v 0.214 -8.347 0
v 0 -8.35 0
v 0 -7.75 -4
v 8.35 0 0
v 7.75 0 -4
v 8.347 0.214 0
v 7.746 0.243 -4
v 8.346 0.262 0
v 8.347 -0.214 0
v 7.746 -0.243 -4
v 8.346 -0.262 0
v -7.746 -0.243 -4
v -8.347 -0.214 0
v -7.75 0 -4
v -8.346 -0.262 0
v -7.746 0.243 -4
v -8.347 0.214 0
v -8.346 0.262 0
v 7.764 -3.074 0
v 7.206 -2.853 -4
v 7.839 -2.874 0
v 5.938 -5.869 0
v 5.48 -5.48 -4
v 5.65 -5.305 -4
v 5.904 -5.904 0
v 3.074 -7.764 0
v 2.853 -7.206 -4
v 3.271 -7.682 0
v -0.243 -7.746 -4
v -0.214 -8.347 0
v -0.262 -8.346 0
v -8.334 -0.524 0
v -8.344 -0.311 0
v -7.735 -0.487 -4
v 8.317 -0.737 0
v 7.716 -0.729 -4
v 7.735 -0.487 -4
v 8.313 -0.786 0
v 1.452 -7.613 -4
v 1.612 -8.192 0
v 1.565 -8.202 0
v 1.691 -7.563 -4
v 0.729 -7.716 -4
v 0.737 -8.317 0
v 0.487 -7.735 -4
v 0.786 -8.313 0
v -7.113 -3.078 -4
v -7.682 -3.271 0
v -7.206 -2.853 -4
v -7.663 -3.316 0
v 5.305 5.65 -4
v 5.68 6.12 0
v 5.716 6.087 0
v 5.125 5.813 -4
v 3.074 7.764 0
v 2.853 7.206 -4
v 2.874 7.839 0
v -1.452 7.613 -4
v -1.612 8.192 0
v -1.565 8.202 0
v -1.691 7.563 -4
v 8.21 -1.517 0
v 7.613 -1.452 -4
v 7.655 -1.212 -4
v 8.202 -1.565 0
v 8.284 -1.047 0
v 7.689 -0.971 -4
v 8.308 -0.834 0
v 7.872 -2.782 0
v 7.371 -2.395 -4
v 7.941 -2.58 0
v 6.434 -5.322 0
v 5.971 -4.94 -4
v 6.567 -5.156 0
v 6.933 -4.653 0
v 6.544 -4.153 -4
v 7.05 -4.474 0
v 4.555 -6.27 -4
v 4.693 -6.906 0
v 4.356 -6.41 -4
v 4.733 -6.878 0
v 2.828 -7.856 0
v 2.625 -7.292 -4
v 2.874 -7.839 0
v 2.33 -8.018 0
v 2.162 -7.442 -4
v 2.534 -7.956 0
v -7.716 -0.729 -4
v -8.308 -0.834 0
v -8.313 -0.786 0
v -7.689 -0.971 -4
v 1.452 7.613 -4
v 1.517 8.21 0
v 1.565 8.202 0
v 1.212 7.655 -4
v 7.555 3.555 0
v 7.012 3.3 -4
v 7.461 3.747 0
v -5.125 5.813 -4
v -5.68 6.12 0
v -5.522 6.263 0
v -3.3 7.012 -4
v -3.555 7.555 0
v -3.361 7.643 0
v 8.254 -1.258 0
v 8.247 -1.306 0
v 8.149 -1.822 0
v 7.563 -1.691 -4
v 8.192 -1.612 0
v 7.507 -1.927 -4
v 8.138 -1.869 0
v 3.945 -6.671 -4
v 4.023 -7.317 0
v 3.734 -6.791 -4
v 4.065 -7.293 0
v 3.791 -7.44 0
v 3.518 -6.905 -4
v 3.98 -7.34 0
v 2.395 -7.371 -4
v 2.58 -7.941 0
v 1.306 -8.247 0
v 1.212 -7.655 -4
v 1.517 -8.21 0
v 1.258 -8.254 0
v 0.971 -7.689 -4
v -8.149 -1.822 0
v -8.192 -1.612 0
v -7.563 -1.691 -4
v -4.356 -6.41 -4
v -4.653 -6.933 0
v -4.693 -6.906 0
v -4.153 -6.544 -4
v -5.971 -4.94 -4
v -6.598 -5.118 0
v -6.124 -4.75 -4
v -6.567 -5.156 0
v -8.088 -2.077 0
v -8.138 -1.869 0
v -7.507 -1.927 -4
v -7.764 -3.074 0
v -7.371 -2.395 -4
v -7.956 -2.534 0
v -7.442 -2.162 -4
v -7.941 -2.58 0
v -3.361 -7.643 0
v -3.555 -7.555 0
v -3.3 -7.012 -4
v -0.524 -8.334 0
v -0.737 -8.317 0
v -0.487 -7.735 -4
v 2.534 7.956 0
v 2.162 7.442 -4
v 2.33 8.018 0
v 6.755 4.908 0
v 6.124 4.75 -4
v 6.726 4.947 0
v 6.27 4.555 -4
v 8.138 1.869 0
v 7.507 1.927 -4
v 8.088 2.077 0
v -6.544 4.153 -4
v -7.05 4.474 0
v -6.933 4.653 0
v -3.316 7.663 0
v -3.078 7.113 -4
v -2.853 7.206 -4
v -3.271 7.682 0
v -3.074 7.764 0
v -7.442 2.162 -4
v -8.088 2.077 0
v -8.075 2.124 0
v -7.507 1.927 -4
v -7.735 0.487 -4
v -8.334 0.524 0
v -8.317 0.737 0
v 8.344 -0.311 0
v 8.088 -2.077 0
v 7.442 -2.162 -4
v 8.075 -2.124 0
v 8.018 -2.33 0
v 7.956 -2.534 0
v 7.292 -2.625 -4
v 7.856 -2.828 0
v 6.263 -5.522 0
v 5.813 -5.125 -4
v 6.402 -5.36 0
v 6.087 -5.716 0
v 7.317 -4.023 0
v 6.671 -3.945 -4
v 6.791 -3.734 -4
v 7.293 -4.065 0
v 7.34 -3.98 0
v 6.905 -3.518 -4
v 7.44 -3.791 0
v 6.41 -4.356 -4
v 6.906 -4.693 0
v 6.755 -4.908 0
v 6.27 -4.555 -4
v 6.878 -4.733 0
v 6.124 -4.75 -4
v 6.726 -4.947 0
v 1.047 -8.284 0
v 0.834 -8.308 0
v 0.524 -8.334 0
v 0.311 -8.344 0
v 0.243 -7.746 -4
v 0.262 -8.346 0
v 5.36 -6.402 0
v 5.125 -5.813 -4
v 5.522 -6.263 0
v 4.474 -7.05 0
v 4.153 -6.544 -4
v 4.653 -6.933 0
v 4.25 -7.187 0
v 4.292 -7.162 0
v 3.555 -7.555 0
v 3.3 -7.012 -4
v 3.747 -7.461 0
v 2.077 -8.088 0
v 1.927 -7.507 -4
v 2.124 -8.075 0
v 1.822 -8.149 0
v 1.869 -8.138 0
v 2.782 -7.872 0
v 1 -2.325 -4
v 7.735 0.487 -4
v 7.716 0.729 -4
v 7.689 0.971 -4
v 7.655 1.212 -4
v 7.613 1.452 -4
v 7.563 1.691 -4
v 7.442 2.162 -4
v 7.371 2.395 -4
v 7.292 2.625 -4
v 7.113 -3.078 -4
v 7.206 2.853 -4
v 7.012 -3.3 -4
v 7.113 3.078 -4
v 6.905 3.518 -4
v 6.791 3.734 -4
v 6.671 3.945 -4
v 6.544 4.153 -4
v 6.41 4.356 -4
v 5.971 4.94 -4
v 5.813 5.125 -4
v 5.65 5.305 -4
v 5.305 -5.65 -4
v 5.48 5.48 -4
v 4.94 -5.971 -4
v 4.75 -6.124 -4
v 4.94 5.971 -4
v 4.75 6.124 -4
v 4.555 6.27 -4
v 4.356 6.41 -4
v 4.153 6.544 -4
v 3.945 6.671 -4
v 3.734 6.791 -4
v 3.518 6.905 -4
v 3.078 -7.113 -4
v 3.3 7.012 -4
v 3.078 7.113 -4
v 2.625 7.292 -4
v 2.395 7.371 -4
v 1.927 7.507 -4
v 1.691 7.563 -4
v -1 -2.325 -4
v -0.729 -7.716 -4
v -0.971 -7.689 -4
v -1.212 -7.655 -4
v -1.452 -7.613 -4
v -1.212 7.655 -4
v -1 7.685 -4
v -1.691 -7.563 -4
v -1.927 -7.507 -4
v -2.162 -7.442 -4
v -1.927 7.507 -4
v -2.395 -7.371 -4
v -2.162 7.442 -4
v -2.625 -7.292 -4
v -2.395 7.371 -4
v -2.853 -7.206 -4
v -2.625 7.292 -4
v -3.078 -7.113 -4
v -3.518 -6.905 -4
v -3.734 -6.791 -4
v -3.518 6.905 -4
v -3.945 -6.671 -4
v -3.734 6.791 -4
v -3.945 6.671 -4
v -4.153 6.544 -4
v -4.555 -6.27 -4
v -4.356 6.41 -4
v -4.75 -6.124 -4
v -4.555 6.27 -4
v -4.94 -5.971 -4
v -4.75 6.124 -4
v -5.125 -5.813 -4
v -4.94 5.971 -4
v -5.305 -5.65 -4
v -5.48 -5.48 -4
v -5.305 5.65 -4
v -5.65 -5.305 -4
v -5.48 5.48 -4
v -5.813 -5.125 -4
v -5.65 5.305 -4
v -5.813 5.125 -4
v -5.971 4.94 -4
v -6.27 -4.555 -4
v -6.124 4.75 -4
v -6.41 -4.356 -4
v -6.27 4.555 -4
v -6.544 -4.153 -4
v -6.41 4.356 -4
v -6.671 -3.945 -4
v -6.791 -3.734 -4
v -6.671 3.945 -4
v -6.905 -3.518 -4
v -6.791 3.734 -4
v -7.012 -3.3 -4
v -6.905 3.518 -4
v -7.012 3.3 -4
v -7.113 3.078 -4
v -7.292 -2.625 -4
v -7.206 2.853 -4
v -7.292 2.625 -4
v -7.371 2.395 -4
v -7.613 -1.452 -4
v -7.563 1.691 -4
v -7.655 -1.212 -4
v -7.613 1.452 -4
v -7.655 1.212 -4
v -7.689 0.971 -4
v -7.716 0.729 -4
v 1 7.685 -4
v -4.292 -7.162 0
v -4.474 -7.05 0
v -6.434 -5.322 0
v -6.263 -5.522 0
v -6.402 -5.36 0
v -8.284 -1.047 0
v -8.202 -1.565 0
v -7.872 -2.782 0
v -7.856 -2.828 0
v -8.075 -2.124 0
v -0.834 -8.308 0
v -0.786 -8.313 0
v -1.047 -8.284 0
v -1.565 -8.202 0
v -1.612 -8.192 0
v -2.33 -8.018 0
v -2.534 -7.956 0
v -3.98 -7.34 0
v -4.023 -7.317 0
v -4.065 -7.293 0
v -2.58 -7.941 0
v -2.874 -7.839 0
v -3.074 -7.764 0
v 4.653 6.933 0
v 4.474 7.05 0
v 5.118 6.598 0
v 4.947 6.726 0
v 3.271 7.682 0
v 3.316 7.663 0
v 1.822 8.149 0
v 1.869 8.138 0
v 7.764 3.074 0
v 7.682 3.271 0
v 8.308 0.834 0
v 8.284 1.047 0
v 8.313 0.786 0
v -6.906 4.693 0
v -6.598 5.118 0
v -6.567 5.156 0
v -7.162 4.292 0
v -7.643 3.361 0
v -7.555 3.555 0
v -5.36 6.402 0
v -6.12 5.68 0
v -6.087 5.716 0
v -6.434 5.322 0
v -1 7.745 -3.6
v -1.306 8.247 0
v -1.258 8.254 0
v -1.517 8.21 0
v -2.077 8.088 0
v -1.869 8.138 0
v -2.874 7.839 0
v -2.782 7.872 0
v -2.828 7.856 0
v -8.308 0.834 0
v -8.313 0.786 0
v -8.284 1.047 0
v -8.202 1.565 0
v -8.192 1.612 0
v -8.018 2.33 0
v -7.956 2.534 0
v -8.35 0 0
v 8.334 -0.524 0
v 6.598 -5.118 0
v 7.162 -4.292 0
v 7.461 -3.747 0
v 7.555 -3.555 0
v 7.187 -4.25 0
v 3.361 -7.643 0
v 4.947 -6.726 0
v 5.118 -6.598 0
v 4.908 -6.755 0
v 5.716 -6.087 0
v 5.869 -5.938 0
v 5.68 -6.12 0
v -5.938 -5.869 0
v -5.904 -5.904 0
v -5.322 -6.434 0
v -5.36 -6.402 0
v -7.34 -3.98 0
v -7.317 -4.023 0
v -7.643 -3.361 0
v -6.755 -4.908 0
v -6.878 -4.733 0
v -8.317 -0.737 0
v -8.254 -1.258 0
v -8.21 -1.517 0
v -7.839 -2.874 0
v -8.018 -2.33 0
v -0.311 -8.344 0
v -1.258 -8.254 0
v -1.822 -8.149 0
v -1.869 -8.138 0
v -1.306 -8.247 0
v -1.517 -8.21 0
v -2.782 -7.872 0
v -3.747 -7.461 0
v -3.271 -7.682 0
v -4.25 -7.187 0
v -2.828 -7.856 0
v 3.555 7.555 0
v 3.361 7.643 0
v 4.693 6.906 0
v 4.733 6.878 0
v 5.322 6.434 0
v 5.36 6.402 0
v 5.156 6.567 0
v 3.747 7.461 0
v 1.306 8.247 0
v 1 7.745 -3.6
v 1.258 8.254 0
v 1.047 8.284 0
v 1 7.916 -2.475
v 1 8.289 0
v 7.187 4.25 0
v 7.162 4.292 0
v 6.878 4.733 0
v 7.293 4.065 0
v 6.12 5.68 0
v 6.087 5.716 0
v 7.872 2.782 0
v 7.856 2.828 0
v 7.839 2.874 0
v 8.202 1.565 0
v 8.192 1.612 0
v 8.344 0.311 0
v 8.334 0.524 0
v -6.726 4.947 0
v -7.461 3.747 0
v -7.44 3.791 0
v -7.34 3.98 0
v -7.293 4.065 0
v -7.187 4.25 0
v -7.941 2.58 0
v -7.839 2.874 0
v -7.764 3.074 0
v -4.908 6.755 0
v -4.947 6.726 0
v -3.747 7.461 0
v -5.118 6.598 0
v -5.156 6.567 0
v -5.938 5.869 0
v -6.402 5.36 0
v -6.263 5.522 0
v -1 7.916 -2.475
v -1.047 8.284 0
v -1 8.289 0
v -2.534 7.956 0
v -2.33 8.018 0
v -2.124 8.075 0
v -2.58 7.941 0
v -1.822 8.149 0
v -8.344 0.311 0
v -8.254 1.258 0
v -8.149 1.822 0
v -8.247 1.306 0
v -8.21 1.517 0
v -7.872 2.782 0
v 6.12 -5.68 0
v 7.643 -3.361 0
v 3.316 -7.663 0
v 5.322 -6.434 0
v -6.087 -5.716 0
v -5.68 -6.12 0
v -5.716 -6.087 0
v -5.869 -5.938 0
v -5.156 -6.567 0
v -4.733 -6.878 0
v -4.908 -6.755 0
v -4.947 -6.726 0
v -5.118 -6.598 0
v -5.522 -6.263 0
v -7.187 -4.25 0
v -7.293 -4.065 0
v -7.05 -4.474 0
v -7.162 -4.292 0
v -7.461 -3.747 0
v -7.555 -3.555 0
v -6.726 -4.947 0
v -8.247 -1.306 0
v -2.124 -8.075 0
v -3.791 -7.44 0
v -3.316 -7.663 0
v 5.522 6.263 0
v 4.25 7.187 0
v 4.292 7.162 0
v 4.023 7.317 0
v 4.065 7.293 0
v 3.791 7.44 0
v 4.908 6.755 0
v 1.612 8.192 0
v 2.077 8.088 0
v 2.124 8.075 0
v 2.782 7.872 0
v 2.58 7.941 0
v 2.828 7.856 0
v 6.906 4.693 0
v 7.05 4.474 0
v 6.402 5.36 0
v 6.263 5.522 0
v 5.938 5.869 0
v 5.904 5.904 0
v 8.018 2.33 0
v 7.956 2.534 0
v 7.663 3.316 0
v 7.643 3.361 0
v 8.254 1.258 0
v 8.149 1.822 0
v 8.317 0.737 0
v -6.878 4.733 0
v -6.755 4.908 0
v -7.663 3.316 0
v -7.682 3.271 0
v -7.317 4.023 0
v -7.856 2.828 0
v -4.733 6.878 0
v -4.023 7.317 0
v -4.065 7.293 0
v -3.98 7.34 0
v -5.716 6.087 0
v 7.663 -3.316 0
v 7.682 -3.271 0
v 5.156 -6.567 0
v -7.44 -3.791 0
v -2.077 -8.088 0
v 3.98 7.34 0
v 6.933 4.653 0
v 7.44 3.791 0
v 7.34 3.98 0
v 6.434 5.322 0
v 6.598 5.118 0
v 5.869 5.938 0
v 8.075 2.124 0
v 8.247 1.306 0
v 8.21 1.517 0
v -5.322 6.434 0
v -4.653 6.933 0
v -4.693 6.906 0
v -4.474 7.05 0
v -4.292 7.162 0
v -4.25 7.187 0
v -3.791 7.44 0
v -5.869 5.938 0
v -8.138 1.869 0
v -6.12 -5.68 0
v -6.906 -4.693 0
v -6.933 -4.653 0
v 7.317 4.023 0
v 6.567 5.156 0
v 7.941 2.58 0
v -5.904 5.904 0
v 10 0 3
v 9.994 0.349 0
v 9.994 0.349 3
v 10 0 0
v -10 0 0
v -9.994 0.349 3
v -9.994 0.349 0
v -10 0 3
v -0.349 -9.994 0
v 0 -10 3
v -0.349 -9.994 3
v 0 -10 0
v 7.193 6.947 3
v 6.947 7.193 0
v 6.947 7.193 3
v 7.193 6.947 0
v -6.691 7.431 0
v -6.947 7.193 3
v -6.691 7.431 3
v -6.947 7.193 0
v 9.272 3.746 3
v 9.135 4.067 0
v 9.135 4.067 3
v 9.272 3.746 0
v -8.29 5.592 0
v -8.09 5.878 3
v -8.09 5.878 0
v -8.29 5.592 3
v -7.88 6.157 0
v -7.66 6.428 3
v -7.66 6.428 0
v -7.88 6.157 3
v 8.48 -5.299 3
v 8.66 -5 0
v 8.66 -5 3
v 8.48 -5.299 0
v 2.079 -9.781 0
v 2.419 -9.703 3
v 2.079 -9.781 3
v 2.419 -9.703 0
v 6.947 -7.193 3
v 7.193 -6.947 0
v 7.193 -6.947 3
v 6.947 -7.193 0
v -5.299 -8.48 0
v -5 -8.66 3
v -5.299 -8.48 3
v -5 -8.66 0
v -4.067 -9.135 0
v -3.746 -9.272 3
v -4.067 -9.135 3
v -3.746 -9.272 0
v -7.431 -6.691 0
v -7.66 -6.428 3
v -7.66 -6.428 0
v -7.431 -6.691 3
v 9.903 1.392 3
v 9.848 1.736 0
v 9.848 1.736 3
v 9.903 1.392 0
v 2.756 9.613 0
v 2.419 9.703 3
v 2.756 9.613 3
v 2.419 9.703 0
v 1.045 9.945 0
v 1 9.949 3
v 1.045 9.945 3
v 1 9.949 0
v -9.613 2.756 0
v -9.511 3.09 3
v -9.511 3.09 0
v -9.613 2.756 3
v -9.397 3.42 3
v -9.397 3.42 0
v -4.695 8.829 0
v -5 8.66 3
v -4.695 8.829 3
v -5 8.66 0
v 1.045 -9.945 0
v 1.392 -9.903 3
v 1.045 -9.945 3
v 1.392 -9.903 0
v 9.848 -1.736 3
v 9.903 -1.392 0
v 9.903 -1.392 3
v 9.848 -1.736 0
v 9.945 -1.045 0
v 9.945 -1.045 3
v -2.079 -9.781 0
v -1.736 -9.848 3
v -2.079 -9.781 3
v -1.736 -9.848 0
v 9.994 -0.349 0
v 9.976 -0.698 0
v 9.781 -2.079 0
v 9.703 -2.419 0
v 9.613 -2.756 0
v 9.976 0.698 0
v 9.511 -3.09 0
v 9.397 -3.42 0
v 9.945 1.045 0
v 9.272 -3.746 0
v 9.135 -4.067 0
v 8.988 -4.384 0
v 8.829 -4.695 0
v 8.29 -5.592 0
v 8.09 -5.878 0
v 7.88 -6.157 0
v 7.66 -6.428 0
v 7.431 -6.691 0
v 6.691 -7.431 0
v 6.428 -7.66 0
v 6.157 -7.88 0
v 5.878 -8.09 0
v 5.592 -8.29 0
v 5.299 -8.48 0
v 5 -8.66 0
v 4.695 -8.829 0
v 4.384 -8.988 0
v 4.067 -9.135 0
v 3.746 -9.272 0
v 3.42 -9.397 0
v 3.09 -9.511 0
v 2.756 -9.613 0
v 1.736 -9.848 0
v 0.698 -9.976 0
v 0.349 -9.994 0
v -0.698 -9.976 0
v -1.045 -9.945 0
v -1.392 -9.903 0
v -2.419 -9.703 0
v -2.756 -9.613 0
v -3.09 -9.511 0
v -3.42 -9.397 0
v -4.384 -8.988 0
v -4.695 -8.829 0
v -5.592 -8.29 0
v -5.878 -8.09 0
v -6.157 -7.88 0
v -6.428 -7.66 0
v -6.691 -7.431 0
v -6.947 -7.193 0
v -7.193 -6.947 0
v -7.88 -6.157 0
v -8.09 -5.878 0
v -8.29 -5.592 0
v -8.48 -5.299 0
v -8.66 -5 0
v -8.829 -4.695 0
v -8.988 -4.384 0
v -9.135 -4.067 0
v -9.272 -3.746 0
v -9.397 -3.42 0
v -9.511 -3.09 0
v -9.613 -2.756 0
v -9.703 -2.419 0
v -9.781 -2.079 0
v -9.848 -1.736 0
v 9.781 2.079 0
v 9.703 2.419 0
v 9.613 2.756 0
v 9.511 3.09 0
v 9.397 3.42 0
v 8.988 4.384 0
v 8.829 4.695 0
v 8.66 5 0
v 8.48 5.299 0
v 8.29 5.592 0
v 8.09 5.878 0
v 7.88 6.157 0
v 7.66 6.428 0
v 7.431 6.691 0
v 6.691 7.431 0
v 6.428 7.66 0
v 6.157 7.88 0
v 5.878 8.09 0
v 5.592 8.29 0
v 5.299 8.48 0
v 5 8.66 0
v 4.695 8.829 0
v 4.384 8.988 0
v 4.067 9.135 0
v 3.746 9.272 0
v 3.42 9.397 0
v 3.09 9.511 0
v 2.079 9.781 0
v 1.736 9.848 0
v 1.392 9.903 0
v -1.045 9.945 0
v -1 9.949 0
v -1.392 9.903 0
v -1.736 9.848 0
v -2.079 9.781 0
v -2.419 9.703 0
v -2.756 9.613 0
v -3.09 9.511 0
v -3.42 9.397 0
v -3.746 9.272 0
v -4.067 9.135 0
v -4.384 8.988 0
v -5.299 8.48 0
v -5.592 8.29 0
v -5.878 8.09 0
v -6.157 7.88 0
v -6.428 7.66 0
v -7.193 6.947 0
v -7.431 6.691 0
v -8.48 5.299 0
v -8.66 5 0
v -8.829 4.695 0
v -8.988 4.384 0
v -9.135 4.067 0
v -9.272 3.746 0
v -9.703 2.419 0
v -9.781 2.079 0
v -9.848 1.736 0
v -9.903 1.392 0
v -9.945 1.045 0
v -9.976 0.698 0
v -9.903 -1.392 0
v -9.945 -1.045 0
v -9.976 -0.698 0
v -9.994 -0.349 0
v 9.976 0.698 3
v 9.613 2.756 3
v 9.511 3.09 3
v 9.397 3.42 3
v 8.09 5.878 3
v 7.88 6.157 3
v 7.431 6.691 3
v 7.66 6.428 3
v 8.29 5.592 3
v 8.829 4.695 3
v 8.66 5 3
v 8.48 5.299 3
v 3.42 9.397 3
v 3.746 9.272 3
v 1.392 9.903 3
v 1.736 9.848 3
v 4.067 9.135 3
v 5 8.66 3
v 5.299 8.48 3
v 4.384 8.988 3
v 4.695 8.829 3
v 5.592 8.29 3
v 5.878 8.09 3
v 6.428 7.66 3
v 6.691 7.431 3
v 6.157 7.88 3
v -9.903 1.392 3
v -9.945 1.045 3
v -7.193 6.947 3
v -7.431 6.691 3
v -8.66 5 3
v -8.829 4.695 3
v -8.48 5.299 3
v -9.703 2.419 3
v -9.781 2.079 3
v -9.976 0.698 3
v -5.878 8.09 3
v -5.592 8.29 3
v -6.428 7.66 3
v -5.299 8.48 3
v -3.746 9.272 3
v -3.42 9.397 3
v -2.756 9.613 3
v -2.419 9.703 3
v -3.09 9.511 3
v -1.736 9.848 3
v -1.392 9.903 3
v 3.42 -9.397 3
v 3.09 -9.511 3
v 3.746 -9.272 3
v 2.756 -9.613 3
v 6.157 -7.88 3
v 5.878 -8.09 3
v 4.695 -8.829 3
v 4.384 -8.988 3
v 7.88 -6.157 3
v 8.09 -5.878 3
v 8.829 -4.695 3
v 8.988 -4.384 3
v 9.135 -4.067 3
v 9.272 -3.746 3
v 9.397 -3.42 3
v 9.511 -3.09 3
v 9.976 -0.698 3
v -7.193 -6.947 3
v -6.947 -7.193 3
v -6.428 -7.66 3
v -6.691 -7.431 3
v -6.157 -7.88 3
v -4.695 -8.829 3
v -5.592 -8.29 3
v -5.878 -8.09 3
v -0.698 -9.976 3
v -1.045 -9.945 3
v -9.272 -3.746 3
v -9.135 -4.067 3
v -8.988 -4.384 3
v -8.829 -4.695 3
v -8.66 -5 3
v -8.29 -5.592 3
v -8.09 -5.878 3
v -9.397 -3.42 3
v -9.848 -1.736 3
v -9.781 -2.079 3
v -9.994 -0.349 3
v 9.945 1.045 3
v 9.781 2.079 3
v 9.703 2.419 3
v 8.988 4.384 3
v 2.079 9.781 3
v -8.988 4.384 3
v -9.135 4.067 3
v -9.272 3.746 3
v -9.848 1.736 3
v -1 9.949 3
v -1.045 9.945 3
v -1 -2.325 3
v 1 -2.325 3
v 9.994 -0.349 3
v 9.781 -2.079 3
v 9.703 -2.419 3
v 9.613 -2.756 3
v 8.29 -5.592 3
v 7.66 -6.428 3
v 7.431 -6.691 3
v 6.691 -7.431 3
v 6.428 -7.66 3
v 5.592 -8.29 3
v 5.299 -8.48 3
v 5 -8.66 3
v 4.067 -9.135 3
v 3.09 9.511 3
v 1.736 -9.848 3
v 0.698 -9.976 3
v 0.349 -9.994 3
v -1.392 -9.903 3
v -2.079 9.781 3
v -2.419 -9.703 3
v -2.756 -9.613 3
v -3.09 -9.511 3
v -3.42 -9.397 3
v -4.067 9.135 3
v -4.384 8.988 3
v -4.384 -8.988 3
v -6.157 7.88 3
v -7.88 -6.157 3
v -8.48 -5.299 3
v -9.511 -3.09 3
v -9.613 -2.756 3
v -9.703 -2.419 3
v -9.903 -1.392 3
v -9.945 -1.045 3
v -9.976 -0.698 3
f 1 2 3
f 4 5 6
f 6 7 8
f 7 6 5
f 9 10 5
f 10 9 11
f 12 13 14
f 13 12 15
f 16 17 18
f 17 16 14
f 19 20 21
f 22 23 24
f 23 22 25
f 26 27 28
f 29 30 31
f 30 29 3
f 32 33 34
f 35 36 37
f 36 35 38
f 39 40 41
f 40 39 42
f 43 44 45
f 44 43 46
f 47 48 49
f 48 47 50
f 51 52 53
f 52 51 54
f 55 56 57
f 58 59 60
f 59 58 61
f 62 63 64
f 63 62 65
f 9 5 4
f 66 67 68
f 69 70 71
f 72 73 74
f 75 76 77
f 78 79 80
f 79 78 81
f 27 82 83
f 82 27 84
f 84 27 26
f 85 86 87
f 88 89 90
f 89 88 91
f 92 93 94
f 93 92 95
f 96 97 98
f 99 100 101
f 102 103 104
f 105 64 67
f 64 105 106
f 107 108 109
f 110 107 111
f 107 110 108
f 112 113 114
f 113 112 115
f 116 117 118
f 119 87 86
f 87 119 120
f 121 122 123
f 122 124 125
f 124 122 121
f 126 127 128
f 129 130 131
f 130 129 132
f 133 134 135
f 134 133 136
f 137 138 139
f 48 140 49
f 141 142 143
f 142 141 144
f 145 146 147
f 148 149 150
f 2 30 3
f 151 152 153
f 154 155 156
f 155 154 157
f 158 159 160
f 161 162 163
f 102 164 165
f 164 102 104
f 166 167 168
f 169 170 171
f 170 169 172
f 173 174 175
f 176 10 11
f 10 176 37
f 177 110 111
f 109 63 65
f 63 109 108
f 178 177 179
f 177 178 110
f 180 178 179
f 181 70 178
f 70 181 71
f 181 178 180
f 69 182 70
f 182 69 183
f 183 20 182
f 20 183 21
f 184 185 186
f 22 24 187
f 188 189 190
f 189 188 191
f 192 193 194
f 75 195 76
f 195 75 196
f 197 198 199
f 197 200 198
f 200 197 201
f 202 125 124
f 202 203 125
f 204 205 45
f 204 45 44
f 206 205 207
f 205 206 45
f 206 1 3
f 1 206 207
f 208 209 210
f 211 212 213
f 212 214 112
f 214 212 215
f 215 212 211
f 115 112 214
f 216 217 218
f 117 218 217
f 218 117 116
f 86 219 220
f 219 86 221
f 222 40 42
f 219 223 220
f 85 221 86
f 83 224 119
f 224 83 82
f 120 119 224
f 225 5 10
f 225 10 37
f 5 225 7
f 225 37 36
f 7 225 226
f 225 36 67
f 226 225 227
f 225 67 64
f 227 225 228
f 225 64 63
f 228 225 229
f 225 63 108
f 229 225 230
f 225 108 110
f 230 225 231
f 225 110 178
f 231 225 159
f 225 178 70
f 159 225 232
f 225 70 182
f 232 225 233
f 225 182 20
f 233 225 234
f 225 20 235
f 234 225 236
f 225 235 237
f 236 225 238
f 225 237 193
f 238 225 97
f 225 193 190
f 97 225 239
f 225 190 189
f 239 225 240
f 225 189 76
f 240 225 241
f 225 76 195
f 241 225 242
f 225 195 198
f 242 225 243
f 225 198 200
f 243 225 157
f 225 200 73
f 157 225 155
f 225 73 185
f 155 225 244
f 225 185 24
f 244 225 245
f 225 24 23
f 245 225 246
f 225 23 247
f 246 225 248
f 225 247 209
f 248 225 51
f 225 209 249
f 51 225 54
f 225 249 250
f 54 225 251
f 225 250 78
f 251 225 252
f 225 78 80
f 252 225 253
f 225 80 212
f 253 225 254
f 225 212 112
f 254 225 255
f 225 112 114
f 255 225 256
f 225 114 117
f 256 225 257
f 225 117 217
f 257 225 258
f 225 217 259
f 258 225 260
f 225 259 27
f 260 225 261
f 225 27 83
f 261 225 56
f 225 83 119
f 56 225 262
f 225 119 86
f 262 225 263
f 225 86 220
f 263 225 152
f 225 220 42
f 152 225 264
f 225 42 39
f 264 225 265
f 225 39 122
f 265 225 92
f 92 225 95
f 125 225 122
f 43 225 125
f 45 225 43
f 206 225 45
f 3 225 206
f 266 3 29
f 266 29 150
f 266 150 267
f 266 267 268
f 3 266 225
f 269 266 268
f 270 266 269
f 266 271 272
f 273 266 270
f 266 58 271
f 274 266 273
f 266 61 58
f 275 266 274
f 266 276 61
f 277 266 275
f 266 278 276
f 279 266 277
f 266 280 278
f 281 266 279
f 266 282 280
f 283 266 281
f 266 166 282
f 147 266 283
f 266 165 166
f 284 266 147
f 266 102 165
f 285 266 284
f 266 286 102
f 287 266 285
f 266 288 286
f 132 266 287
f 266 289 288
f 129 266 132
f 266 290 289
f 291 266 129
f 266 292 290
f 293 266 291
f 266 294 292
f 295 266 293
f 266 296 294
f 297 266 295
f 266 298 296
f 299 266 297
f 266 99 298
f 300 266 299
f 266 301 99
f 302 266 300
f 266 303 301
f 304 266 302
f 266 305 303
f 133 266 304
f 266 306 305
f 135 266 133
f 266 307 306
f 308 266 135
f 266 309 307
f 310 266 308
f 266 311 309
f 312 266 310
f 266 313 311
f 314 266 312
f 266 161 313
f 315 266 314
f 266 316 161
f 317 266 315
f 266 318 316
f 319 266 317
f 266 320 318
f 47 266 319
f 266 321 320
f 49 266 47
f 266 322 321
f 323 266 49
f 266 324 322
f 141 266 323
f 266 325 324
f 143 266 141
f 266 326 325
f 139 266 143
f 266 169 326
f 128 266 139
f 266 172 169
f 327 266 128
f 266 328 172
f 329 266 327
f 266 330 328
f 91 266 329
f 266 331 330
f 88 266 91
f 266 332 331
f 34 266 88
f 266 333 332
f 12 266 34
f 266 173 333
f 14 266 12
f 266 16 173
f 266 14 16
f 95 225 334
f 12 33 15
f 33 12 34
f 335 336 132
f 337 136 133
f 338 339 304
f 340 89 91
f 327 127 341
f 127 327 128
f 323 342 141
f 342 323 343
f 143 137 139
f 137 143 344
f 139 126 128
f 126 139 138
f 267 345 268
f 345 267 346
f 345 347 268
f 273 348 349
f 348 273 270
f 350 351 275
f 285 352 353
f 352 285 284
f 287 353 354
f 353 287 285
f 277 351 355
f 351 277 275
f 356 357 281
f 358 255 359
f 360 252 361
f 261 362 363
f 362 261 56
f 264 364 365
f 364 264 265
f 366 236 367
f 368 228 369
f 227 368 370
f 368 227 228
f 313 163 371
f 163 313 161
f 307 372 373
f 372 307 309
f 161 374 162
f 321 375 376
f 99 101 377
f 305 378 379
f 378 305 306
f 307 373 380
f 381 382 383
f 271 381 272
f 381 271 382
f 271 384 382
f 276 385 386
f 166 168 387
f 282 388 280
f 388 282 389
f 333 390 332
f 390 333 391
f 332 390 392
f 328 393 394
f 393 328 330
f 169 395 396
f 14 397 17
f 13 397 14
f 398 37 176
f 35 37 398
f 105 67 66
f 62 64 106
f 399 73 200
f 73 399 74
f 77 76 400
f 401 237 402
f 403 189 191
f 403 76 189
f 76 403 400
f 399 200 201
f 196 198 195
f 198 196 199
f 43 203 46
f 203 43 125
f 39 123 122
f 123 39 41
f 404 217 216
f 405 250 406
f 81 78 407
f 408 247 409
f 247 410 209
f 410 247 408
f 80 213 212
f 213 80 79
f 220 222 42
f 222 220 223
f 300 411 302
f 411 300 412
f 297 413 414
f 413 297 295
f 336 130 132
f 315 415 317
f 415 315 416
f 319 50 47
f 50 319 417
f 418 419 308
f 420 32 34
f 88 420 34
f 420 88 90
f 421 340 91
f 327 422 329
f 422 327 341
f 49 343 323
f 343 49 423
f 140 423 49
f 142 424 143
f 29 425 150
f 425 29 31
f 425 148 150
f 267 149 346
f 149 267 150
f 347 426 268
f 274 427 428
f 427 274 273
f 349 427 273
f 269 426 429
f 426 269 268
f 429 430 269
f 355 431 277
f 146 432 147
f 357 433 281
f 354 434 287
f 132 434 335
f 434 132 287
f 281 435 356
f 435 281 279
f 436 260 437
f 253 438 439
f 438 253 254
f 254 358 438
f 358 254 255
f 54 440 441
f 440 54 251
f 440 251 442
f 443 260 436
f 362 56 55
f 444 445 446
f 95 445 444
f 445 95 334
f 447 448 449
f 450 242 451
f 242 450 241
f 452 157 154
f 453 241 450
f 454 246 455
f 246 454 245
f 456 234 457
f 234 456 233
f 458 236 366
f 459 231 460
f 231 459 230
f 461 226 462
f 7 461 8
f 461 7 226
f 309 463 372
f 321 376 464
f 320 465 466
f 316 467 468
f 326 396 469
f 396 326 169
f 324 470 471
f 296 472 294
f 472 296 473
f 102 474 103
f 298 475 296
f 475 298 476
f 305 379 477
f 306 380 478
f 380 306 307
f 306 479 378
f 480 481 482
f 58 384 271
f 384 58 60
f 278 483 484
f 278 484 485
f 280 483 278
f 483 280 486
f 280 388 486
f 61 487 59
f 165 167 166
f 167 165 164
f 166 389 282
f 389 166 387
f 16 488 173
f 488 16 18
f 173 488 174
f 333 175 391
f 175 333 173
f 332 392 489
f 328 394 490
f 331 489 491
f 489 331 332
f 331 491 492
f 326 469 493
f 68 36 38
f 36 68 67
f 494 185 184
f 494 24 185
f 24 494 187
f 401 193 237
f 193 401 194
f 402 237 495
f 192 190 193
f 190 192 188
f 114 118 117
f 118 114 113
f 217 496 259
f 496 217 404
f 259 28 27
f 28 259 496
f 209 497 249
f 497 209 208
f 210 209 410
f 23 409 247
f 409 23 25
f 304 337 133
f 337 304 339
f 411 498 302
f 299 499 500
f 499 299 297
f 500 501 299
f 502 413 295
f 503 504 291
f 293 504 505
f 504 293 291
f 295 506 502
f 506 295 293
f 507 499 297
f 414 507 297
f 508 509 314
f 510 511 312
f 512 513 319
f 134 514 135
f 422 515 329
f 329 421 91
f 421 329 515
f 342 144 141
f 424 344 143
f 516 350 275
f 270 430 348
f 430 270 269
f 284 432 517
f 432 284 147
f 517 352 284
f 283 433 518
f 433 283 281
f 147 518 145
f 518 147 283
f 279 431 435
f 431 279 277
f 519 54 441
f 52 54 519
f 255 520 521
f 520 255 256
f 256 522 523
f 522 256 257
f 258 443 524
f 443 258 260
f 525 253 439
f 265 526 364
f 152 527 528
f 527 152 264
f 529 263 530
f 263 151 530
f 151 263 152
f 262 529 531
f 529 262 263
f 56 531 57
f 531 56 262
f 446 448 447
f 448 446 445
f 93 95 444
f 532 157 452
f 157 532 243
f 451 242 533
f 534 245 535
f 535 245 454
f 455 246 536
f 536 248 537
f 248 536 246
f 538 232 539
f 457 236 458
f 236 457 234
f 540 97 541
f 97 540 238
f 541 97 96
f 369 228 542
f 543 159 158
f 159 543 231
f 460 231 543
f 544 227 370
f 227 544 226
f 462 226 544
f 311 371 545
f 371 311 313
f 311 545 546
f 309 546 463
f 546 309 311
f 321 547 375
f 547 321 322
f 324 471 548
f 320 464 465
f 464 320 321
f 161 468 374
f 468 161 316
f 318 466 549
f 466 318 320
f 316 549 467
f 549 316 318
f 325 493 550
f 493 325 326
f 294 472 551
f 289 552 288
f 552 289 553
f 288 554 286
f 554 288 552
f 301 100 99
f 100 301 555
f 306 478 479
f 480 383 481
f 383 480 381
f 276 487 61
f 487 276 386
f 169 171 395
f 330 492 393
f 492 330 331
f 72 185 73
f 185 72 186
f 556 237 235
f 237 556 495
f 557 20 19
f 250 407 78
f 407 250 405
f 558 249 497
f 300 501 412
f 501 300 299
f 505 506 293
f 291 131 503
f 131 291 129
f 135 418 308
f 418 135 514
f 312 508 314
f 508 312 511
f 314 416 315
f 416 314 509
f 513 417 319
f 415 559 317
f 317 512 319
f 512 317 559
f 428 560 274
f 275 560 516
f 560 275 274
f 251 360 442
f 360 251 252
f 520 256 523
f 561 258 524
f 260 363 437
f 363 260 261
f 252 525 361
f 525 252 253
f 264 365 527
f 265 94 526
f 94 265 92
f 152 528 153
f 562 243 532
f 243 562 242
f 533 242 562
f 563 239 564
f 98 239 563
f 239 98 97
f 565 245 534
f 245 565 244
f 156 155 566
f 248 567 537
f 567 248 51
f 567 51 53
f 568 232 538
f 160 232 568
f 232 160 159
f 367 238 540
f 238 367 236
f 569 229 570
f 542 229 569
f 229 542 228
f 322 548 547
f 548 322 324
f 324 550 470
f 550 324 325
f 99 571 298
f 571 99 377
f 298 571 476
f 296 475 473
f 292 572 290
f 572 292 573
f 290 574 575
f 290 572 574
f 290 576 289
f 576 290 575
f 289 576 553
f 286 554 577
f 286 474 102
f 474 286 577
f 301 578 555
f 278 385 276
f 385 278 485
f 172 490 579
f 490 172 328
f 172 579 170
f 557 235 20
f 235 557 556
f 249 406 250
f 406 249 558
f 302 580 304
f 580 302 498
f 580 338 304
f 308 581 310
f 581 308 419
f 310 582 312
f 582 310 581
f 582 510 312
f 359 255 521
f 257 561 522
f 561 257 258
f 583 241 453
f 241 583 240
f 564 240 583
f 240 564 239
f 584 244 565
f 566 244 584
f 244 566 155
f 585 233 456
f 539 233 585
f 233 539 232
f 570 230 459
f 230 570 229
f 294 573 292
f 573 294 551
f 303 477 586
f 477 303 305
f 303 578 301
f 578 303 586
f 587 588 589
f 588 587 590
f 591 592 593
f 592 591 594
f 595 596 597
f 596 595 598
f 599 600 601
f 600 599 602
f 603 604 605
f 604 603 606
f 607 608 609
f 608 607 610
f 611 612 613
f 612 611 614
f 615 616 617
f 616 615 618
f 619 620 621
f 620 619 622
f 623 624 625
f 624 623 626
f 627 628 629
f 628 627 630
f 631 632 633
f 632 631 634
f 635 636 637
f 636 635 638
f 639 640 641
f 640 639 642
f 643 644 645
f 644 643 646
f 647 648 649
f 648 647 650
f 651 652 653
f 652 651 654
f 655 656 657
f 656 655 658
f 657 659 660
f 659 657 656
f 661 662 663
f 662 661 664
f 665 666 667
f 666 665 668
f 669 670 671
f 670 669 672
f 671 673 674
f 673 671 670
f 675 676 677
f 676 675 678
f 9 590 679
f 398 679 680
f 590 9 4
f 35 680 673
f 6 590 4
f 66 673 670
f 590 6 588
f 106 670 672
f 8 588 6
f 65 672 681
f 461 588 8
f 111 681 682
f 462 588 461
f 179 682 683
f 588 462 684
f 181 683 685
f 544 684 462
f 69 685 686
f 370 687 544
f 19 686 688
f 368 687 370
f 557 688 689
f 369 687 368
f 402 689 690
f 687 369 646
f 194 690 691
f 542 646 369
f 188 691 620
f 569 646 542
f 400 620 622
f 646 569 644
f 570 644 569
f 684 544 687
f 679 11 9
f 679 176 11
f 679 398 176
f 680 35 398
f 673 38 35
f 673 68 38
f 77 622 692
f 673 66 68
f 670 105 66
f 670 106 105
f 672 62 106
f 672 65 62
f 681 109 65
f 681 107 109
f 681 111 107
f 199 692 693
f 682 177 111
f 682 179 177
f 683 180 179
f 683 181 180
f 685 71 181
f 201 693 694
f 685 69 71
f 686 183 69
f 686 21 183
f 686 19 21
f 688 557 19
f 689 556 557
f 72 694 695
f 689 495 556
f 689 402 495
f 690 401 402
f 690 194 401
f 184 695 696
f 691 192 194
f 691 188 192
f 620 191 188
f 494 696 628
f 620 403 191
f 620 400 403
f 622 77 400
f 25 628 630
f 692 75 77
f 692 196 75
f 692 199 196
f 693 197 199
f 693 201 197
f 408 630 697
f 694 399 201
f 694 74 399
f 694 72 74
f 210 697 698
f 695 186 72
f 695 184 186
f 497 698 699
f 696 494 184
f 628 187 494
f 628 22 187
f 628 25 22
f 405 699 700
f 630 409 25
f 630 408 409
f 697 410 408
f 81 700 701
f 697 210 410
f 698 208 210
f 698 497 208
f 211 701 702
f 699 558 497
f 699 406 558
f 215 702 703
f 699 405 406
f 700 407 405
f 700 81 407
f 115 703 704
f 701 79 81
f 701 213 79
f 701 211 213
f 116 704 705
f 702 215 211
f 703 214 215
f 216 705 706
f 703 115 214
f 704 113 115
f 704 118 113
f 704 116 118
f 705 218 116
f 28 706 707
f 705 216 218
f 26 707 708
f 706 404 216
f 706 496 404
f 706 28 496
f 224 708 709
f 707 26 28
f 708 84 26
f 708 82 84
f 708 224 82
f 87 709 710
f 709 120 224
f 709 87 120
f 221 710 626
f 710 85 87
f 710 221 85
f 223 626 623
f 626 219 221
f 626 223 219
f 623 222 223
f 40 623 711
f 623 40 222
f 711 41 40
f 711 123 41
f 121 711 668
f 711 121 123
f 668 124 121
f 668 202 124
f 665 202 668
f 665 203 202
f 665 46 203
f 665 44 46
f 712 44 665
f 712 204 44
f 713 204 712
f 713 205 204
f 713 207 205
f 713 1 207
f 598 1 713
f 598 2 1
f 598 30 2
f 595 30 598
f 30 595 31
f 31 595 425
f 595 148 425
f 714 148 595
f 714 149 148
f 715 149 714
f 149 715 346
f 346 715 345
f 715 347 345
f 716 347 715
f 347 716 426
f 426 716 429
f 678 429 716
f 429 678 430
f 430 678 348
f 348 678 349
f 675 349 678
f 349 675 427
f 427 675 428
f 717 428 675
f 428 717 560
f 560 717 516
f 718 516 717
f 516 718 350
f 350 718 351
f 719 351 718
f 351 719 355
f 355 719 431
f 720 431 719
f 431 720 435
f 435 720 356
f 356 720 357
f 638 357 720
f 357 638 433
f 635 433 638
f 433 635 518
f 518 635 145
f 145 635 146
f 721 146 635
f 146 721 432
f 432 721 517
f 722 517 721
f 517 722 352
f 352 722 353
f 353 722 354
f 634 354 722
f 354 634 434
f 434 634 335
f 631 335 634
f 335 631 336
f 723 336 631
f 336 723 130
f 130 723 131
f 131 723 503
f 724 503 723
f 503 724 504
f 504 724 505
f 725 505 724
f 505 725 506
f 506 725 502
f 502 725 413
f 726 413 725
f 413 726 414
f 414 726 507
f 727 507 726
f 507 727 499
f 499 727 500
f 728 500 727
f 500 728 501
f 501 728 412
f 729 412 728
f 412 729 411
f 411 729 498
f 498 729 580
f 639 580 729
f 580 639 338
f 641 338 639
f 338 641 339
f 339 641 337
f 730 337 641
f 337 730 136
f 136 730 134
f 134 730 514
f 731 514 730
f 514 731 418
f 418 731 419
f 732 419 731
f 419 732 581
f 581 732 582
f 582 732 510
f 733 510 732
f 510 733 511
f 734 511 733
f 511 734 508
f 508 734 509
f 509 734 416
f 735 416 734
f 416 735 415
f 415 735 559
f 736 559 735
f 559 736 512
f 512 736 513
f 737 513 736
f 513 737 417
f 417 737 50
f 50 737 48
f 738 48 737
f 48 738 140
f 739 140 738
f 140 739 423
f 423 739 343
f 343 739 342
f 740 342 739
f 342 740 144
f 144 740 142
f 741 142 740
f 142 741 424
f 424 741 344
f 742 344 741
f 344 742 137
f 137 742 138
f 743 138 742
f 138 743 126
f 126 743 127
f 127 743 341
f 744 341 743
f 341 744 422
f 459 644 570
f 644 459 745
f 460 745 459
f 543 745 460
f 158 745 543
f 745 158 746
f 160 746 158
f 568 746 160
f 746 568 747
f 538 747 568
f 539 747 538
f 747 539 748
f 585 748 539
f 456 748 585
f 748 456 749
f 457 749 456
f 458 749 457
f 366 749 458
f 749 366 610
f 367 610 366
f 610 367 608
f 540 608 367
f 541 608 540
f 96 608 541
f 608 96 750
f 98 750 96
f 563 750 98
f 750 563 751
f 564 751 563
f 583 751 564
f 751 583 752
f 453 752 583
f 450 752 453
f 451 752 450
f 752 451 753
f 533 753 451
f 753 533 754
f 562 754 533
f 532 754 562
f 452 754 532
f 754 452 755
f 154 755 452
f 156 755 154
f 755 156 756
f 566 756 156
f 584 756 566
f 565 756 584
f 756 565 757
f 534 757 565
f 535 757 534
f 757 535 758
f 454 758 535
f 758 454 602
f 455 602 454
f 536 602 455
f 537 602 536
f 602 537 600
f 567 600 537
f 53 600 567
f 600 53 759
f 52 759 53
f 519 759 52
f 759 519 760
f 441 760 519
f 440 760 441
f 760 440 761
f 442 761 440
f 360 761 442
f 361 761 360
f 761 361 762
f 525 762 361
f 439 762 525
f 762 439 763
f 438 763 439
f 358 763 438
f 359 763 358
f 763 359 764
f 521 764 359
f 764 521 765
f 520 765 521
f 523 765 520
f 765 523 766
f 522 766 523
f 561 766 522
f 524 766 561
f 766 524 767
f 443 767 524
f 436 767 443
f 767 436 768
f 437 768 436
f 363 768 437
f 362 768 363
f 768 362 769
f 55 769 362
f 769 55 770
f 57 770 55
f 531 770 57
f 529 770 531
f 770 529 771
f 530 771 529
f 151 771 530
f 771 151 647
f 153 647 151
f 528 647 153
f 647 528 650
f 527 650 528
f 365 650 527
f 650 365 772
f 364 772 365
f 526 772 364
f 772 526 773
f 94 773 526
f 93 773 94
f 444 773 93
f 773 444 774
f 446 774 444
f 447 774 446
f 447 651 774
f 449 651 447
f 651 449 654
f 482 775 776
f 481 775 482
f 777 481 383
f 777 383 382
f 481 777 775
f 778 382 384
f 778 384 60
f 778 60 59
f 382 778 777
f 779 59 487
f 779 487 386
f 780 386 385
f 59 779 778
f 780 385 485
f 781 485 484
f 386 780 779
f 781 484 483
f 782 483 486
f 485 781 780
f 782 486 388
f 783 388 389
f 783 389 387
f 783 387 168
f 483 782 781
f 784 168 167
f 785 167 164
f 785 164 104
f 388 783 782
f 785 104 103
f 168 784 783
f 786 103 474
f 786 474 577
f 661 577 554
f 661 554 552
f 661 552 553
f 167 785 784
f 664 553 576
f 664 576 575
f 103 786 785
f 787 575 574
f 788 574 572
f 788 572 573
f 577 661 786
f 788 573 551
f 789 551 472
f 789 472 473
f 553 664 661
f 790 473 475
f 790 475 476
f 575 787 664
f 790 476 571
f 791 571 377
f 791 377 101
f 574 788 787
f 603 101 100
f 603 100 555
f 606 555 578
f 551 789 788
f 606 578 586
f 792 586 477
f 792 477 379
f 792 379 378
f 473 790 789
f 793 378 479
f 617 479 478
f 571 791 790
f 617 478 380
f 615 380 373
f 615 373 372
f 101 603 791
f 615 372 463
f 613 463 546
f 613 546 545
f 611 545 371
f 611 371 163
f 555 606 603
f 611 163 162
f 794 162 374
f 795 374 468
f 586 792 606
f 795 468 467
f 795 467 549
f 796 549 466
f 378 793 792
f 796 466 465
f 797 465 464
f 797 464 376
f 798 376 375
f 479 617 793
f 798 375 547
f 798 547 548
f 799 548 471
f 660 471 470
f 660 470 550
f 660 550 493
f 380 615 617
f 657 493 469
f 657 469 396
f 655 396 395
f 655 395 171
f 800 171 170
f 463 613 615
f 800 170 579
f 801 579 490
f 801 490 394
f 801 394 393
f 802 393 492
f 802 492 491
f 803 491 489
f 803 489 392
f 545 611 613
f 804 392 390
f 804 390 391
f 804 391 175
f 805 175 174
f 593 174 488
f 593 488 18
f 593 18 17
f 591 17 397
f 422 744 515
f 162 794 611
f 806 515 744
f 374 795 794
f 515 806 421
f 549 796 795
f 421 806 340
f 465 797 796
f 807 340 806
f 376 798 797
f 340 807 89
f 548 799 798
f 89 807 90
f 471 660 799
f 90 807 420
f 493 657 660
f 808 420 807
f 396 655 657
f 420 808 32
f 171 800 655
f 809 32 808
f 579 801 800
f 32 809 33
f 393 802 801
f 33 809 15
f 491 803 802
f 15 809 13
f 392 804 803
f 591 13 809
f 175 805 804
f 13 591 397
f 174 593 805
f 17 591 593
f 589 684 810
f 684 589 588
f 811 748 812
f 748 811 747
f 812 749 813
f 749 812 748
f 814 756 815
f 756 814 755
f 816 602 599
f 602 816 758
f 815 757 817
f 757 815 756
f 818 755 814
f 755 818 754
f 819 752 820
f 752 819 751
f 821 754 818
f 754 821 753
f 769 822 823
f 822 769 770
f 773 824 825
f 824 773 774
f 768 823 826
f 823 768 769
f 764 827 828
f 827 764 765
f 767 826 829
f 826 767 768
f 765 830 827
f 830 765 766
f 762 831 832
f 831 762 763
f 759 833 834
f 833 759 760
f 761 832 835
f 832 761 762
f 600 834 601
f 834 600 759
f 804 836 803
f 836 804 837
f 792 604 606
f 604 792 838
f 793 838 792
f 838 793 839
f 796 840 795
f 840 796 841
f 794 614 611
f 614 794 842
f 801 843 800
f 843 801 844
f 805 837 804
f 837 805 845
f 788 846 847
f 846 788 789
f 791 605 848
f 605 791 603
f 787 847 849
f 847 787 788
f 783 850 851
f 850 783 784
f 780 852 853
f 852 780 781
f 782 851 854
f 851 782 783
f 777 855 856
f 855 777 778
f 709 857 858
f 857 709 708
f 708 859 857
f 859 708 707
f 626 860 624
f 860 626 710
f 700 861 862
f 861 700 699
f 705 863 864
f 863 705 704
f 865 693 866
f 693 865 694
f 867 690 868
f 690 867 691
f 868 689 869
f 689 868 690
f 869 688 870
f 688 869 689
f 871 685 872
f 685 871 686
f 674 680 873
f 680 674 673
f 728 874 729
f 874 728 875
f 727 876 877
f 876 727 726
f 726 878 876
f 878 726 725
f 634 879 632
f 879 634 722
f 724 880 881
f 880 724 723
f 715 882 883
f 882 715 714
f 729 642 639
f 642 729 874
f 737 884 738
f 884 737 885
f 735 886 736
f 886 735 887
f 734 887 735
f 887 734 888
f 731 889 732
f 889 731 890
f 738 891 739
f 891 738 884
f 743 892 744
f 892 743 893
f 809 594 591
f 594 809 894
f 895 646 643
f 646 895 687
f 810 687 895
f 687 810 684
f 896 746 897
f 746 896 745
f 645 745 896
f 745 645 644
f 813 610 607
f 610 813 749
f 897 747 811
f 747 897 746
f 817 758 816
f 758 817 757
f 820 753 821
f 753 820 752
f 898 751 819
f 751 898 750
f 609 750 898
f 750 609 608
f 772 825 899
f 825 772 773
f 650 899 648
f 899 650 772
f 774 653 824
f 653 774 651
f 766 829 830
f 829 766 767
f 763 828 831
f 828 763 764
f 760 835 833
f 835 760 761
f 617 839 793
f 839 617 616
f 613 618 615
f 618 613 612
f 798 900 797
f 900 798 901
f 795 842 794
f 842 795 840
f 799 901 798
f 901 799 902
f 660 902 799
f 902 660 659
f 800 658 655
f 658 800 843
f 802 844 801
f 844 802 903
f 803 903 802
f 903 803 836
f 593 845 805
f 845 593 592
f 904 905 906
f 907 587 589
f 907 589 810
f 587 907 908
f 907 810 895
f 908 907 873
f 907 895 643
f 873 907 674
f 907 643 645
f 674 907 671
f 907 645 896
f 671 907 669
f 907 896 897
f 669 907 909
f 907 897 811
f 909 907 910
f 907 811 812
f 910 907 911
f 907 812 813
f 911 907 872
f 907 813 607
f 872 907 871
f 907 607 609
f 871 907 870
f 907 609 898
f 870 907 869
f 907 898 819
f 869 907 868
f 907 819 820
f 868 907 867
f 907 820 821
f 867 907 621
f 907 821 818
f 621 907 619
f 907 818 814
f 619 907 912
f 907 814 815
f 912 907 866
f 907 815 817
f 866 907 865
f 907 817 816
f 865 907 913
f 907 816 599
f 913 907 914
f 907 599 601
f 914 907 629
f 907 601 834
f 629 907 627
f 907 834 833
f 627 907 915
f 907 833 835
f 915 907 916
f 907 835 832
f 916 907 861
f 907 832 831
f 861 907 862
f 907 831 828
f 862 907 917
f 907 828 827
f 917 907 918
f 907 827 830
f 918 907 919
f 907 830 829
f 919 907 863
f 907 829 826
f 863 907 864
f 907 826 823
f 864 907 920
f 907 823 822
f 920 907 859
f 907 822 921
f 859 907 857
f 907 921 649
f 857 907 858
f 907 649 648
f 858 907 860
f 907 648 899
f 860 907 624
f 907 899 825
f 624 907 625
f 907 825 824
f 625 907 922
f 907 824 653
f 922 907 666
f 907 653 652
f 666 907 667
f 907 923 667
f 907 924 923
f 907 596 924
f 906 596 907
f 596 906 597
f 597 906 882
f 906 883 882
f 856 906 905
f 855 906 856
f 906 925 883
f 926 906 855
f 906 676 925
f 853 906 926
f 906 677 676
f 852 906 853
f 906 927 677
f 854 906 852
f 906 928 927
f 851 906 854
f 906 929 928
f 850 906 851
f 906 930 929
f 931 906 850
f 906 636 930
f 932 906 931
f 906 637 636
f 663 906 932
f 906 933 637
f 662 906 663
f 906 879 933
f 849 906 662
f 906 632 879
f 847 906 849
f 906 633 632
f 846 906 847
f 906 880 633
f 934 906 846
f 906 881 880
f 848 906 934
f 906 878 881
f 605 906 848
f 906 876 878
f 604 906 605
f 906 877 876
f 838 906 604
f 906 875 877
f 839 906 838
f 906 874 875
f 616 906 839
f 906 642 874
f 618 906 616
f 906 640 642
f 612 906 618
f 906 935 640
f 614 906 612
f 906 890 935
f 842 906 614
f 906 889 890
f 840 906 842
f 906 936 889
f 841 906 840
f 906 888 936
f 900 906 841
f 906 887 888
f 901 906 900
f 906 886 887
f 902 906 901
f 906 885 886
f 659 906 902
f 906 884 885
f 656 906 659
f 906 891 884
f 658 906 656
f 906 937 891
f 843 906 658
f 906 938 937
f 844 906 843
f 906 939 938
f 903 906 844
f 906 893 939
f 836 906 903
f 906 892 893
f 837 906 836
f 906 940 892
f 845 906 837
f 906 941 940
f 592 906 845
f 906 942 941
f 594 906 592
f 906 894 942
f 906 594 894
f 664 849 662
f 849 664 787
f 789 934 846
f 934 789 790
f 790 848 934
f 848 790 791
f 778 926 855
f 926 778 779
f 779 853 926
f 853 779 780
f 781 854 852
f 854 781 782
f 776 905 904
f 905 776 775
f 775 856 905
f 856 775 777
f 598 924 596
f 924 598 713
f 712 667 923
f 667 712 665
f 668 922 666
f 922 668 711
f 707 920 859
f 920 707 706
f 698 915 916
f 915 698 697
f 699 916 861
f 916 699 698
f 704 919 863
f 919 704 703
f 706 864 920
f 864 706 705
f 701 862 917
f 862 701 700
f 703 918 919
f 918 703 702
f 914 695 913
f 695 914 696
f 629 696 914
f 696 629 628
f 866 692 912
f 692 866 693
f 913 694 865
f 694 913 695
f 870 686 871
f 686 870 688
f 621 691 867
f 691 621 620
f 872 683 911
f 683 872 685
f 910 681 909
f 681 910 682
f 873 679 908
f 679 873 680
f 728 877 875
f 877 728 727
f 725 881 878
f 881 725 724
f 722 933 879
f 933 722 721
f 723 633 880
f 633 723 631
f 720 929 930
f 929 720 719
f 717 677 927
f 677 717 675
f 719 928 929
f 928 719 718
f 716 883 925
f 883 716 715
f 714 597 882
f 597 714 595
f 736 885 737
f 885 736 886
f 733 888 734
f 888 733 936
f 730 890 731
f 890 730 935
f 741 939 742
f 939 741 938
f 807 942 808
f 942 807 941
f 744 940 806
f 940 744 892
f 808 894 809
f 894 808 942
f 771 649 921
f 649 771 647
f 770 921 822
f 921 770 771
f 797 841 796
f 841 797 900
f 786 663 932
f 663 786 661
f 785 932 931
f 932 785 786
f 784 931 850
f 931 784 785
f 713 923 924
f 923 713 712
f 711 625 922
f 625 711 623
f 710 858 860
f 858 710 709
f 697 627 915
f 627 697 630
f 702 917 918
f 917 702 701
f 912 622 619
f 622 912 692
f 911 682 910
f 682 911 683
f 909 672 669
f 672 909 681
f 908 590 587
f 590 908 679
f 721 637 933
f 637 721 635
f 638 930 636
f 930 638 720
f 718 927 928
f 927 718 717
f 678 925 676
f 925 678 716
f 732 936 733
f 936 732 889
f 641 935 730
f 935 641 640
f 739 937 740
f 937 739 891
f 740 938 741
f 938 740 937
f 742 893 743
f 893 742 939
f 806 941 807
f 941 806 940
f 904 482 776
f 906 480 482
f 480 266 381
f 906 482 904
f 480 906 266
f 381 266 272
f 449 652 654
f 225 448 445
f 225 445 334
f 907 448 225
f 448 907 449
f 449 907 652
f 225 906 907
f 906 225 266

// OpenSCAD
// Define all parameter
tupeDiameter=20;
tupeInsideDiameter=15.5;
tupeInsideDiameter2=17;
materialWidth=3;
materialWidthInside=5;
cableHole=2;
percentOpen=65;


// Cover

difference() {
union() {
    translate([0,0,-materialWidth/2]) cylinder(d1=tupeInsideDiameter, d2=tupeInsideDiameter2, h=materialWidthInside, center=true, $fn=200);
        translate([0,0,materialWidth/2]) cylinder(d=tupeDiameter, h=materialWidth, center=true, $fn=180);
    }
    union() {
        translate([0,tupeInsideDiameter*(100-percentOpen)/100,0]) cube([cableHole,tupeInsideDiameter,materialWidth*3], center=true);
    }
}
